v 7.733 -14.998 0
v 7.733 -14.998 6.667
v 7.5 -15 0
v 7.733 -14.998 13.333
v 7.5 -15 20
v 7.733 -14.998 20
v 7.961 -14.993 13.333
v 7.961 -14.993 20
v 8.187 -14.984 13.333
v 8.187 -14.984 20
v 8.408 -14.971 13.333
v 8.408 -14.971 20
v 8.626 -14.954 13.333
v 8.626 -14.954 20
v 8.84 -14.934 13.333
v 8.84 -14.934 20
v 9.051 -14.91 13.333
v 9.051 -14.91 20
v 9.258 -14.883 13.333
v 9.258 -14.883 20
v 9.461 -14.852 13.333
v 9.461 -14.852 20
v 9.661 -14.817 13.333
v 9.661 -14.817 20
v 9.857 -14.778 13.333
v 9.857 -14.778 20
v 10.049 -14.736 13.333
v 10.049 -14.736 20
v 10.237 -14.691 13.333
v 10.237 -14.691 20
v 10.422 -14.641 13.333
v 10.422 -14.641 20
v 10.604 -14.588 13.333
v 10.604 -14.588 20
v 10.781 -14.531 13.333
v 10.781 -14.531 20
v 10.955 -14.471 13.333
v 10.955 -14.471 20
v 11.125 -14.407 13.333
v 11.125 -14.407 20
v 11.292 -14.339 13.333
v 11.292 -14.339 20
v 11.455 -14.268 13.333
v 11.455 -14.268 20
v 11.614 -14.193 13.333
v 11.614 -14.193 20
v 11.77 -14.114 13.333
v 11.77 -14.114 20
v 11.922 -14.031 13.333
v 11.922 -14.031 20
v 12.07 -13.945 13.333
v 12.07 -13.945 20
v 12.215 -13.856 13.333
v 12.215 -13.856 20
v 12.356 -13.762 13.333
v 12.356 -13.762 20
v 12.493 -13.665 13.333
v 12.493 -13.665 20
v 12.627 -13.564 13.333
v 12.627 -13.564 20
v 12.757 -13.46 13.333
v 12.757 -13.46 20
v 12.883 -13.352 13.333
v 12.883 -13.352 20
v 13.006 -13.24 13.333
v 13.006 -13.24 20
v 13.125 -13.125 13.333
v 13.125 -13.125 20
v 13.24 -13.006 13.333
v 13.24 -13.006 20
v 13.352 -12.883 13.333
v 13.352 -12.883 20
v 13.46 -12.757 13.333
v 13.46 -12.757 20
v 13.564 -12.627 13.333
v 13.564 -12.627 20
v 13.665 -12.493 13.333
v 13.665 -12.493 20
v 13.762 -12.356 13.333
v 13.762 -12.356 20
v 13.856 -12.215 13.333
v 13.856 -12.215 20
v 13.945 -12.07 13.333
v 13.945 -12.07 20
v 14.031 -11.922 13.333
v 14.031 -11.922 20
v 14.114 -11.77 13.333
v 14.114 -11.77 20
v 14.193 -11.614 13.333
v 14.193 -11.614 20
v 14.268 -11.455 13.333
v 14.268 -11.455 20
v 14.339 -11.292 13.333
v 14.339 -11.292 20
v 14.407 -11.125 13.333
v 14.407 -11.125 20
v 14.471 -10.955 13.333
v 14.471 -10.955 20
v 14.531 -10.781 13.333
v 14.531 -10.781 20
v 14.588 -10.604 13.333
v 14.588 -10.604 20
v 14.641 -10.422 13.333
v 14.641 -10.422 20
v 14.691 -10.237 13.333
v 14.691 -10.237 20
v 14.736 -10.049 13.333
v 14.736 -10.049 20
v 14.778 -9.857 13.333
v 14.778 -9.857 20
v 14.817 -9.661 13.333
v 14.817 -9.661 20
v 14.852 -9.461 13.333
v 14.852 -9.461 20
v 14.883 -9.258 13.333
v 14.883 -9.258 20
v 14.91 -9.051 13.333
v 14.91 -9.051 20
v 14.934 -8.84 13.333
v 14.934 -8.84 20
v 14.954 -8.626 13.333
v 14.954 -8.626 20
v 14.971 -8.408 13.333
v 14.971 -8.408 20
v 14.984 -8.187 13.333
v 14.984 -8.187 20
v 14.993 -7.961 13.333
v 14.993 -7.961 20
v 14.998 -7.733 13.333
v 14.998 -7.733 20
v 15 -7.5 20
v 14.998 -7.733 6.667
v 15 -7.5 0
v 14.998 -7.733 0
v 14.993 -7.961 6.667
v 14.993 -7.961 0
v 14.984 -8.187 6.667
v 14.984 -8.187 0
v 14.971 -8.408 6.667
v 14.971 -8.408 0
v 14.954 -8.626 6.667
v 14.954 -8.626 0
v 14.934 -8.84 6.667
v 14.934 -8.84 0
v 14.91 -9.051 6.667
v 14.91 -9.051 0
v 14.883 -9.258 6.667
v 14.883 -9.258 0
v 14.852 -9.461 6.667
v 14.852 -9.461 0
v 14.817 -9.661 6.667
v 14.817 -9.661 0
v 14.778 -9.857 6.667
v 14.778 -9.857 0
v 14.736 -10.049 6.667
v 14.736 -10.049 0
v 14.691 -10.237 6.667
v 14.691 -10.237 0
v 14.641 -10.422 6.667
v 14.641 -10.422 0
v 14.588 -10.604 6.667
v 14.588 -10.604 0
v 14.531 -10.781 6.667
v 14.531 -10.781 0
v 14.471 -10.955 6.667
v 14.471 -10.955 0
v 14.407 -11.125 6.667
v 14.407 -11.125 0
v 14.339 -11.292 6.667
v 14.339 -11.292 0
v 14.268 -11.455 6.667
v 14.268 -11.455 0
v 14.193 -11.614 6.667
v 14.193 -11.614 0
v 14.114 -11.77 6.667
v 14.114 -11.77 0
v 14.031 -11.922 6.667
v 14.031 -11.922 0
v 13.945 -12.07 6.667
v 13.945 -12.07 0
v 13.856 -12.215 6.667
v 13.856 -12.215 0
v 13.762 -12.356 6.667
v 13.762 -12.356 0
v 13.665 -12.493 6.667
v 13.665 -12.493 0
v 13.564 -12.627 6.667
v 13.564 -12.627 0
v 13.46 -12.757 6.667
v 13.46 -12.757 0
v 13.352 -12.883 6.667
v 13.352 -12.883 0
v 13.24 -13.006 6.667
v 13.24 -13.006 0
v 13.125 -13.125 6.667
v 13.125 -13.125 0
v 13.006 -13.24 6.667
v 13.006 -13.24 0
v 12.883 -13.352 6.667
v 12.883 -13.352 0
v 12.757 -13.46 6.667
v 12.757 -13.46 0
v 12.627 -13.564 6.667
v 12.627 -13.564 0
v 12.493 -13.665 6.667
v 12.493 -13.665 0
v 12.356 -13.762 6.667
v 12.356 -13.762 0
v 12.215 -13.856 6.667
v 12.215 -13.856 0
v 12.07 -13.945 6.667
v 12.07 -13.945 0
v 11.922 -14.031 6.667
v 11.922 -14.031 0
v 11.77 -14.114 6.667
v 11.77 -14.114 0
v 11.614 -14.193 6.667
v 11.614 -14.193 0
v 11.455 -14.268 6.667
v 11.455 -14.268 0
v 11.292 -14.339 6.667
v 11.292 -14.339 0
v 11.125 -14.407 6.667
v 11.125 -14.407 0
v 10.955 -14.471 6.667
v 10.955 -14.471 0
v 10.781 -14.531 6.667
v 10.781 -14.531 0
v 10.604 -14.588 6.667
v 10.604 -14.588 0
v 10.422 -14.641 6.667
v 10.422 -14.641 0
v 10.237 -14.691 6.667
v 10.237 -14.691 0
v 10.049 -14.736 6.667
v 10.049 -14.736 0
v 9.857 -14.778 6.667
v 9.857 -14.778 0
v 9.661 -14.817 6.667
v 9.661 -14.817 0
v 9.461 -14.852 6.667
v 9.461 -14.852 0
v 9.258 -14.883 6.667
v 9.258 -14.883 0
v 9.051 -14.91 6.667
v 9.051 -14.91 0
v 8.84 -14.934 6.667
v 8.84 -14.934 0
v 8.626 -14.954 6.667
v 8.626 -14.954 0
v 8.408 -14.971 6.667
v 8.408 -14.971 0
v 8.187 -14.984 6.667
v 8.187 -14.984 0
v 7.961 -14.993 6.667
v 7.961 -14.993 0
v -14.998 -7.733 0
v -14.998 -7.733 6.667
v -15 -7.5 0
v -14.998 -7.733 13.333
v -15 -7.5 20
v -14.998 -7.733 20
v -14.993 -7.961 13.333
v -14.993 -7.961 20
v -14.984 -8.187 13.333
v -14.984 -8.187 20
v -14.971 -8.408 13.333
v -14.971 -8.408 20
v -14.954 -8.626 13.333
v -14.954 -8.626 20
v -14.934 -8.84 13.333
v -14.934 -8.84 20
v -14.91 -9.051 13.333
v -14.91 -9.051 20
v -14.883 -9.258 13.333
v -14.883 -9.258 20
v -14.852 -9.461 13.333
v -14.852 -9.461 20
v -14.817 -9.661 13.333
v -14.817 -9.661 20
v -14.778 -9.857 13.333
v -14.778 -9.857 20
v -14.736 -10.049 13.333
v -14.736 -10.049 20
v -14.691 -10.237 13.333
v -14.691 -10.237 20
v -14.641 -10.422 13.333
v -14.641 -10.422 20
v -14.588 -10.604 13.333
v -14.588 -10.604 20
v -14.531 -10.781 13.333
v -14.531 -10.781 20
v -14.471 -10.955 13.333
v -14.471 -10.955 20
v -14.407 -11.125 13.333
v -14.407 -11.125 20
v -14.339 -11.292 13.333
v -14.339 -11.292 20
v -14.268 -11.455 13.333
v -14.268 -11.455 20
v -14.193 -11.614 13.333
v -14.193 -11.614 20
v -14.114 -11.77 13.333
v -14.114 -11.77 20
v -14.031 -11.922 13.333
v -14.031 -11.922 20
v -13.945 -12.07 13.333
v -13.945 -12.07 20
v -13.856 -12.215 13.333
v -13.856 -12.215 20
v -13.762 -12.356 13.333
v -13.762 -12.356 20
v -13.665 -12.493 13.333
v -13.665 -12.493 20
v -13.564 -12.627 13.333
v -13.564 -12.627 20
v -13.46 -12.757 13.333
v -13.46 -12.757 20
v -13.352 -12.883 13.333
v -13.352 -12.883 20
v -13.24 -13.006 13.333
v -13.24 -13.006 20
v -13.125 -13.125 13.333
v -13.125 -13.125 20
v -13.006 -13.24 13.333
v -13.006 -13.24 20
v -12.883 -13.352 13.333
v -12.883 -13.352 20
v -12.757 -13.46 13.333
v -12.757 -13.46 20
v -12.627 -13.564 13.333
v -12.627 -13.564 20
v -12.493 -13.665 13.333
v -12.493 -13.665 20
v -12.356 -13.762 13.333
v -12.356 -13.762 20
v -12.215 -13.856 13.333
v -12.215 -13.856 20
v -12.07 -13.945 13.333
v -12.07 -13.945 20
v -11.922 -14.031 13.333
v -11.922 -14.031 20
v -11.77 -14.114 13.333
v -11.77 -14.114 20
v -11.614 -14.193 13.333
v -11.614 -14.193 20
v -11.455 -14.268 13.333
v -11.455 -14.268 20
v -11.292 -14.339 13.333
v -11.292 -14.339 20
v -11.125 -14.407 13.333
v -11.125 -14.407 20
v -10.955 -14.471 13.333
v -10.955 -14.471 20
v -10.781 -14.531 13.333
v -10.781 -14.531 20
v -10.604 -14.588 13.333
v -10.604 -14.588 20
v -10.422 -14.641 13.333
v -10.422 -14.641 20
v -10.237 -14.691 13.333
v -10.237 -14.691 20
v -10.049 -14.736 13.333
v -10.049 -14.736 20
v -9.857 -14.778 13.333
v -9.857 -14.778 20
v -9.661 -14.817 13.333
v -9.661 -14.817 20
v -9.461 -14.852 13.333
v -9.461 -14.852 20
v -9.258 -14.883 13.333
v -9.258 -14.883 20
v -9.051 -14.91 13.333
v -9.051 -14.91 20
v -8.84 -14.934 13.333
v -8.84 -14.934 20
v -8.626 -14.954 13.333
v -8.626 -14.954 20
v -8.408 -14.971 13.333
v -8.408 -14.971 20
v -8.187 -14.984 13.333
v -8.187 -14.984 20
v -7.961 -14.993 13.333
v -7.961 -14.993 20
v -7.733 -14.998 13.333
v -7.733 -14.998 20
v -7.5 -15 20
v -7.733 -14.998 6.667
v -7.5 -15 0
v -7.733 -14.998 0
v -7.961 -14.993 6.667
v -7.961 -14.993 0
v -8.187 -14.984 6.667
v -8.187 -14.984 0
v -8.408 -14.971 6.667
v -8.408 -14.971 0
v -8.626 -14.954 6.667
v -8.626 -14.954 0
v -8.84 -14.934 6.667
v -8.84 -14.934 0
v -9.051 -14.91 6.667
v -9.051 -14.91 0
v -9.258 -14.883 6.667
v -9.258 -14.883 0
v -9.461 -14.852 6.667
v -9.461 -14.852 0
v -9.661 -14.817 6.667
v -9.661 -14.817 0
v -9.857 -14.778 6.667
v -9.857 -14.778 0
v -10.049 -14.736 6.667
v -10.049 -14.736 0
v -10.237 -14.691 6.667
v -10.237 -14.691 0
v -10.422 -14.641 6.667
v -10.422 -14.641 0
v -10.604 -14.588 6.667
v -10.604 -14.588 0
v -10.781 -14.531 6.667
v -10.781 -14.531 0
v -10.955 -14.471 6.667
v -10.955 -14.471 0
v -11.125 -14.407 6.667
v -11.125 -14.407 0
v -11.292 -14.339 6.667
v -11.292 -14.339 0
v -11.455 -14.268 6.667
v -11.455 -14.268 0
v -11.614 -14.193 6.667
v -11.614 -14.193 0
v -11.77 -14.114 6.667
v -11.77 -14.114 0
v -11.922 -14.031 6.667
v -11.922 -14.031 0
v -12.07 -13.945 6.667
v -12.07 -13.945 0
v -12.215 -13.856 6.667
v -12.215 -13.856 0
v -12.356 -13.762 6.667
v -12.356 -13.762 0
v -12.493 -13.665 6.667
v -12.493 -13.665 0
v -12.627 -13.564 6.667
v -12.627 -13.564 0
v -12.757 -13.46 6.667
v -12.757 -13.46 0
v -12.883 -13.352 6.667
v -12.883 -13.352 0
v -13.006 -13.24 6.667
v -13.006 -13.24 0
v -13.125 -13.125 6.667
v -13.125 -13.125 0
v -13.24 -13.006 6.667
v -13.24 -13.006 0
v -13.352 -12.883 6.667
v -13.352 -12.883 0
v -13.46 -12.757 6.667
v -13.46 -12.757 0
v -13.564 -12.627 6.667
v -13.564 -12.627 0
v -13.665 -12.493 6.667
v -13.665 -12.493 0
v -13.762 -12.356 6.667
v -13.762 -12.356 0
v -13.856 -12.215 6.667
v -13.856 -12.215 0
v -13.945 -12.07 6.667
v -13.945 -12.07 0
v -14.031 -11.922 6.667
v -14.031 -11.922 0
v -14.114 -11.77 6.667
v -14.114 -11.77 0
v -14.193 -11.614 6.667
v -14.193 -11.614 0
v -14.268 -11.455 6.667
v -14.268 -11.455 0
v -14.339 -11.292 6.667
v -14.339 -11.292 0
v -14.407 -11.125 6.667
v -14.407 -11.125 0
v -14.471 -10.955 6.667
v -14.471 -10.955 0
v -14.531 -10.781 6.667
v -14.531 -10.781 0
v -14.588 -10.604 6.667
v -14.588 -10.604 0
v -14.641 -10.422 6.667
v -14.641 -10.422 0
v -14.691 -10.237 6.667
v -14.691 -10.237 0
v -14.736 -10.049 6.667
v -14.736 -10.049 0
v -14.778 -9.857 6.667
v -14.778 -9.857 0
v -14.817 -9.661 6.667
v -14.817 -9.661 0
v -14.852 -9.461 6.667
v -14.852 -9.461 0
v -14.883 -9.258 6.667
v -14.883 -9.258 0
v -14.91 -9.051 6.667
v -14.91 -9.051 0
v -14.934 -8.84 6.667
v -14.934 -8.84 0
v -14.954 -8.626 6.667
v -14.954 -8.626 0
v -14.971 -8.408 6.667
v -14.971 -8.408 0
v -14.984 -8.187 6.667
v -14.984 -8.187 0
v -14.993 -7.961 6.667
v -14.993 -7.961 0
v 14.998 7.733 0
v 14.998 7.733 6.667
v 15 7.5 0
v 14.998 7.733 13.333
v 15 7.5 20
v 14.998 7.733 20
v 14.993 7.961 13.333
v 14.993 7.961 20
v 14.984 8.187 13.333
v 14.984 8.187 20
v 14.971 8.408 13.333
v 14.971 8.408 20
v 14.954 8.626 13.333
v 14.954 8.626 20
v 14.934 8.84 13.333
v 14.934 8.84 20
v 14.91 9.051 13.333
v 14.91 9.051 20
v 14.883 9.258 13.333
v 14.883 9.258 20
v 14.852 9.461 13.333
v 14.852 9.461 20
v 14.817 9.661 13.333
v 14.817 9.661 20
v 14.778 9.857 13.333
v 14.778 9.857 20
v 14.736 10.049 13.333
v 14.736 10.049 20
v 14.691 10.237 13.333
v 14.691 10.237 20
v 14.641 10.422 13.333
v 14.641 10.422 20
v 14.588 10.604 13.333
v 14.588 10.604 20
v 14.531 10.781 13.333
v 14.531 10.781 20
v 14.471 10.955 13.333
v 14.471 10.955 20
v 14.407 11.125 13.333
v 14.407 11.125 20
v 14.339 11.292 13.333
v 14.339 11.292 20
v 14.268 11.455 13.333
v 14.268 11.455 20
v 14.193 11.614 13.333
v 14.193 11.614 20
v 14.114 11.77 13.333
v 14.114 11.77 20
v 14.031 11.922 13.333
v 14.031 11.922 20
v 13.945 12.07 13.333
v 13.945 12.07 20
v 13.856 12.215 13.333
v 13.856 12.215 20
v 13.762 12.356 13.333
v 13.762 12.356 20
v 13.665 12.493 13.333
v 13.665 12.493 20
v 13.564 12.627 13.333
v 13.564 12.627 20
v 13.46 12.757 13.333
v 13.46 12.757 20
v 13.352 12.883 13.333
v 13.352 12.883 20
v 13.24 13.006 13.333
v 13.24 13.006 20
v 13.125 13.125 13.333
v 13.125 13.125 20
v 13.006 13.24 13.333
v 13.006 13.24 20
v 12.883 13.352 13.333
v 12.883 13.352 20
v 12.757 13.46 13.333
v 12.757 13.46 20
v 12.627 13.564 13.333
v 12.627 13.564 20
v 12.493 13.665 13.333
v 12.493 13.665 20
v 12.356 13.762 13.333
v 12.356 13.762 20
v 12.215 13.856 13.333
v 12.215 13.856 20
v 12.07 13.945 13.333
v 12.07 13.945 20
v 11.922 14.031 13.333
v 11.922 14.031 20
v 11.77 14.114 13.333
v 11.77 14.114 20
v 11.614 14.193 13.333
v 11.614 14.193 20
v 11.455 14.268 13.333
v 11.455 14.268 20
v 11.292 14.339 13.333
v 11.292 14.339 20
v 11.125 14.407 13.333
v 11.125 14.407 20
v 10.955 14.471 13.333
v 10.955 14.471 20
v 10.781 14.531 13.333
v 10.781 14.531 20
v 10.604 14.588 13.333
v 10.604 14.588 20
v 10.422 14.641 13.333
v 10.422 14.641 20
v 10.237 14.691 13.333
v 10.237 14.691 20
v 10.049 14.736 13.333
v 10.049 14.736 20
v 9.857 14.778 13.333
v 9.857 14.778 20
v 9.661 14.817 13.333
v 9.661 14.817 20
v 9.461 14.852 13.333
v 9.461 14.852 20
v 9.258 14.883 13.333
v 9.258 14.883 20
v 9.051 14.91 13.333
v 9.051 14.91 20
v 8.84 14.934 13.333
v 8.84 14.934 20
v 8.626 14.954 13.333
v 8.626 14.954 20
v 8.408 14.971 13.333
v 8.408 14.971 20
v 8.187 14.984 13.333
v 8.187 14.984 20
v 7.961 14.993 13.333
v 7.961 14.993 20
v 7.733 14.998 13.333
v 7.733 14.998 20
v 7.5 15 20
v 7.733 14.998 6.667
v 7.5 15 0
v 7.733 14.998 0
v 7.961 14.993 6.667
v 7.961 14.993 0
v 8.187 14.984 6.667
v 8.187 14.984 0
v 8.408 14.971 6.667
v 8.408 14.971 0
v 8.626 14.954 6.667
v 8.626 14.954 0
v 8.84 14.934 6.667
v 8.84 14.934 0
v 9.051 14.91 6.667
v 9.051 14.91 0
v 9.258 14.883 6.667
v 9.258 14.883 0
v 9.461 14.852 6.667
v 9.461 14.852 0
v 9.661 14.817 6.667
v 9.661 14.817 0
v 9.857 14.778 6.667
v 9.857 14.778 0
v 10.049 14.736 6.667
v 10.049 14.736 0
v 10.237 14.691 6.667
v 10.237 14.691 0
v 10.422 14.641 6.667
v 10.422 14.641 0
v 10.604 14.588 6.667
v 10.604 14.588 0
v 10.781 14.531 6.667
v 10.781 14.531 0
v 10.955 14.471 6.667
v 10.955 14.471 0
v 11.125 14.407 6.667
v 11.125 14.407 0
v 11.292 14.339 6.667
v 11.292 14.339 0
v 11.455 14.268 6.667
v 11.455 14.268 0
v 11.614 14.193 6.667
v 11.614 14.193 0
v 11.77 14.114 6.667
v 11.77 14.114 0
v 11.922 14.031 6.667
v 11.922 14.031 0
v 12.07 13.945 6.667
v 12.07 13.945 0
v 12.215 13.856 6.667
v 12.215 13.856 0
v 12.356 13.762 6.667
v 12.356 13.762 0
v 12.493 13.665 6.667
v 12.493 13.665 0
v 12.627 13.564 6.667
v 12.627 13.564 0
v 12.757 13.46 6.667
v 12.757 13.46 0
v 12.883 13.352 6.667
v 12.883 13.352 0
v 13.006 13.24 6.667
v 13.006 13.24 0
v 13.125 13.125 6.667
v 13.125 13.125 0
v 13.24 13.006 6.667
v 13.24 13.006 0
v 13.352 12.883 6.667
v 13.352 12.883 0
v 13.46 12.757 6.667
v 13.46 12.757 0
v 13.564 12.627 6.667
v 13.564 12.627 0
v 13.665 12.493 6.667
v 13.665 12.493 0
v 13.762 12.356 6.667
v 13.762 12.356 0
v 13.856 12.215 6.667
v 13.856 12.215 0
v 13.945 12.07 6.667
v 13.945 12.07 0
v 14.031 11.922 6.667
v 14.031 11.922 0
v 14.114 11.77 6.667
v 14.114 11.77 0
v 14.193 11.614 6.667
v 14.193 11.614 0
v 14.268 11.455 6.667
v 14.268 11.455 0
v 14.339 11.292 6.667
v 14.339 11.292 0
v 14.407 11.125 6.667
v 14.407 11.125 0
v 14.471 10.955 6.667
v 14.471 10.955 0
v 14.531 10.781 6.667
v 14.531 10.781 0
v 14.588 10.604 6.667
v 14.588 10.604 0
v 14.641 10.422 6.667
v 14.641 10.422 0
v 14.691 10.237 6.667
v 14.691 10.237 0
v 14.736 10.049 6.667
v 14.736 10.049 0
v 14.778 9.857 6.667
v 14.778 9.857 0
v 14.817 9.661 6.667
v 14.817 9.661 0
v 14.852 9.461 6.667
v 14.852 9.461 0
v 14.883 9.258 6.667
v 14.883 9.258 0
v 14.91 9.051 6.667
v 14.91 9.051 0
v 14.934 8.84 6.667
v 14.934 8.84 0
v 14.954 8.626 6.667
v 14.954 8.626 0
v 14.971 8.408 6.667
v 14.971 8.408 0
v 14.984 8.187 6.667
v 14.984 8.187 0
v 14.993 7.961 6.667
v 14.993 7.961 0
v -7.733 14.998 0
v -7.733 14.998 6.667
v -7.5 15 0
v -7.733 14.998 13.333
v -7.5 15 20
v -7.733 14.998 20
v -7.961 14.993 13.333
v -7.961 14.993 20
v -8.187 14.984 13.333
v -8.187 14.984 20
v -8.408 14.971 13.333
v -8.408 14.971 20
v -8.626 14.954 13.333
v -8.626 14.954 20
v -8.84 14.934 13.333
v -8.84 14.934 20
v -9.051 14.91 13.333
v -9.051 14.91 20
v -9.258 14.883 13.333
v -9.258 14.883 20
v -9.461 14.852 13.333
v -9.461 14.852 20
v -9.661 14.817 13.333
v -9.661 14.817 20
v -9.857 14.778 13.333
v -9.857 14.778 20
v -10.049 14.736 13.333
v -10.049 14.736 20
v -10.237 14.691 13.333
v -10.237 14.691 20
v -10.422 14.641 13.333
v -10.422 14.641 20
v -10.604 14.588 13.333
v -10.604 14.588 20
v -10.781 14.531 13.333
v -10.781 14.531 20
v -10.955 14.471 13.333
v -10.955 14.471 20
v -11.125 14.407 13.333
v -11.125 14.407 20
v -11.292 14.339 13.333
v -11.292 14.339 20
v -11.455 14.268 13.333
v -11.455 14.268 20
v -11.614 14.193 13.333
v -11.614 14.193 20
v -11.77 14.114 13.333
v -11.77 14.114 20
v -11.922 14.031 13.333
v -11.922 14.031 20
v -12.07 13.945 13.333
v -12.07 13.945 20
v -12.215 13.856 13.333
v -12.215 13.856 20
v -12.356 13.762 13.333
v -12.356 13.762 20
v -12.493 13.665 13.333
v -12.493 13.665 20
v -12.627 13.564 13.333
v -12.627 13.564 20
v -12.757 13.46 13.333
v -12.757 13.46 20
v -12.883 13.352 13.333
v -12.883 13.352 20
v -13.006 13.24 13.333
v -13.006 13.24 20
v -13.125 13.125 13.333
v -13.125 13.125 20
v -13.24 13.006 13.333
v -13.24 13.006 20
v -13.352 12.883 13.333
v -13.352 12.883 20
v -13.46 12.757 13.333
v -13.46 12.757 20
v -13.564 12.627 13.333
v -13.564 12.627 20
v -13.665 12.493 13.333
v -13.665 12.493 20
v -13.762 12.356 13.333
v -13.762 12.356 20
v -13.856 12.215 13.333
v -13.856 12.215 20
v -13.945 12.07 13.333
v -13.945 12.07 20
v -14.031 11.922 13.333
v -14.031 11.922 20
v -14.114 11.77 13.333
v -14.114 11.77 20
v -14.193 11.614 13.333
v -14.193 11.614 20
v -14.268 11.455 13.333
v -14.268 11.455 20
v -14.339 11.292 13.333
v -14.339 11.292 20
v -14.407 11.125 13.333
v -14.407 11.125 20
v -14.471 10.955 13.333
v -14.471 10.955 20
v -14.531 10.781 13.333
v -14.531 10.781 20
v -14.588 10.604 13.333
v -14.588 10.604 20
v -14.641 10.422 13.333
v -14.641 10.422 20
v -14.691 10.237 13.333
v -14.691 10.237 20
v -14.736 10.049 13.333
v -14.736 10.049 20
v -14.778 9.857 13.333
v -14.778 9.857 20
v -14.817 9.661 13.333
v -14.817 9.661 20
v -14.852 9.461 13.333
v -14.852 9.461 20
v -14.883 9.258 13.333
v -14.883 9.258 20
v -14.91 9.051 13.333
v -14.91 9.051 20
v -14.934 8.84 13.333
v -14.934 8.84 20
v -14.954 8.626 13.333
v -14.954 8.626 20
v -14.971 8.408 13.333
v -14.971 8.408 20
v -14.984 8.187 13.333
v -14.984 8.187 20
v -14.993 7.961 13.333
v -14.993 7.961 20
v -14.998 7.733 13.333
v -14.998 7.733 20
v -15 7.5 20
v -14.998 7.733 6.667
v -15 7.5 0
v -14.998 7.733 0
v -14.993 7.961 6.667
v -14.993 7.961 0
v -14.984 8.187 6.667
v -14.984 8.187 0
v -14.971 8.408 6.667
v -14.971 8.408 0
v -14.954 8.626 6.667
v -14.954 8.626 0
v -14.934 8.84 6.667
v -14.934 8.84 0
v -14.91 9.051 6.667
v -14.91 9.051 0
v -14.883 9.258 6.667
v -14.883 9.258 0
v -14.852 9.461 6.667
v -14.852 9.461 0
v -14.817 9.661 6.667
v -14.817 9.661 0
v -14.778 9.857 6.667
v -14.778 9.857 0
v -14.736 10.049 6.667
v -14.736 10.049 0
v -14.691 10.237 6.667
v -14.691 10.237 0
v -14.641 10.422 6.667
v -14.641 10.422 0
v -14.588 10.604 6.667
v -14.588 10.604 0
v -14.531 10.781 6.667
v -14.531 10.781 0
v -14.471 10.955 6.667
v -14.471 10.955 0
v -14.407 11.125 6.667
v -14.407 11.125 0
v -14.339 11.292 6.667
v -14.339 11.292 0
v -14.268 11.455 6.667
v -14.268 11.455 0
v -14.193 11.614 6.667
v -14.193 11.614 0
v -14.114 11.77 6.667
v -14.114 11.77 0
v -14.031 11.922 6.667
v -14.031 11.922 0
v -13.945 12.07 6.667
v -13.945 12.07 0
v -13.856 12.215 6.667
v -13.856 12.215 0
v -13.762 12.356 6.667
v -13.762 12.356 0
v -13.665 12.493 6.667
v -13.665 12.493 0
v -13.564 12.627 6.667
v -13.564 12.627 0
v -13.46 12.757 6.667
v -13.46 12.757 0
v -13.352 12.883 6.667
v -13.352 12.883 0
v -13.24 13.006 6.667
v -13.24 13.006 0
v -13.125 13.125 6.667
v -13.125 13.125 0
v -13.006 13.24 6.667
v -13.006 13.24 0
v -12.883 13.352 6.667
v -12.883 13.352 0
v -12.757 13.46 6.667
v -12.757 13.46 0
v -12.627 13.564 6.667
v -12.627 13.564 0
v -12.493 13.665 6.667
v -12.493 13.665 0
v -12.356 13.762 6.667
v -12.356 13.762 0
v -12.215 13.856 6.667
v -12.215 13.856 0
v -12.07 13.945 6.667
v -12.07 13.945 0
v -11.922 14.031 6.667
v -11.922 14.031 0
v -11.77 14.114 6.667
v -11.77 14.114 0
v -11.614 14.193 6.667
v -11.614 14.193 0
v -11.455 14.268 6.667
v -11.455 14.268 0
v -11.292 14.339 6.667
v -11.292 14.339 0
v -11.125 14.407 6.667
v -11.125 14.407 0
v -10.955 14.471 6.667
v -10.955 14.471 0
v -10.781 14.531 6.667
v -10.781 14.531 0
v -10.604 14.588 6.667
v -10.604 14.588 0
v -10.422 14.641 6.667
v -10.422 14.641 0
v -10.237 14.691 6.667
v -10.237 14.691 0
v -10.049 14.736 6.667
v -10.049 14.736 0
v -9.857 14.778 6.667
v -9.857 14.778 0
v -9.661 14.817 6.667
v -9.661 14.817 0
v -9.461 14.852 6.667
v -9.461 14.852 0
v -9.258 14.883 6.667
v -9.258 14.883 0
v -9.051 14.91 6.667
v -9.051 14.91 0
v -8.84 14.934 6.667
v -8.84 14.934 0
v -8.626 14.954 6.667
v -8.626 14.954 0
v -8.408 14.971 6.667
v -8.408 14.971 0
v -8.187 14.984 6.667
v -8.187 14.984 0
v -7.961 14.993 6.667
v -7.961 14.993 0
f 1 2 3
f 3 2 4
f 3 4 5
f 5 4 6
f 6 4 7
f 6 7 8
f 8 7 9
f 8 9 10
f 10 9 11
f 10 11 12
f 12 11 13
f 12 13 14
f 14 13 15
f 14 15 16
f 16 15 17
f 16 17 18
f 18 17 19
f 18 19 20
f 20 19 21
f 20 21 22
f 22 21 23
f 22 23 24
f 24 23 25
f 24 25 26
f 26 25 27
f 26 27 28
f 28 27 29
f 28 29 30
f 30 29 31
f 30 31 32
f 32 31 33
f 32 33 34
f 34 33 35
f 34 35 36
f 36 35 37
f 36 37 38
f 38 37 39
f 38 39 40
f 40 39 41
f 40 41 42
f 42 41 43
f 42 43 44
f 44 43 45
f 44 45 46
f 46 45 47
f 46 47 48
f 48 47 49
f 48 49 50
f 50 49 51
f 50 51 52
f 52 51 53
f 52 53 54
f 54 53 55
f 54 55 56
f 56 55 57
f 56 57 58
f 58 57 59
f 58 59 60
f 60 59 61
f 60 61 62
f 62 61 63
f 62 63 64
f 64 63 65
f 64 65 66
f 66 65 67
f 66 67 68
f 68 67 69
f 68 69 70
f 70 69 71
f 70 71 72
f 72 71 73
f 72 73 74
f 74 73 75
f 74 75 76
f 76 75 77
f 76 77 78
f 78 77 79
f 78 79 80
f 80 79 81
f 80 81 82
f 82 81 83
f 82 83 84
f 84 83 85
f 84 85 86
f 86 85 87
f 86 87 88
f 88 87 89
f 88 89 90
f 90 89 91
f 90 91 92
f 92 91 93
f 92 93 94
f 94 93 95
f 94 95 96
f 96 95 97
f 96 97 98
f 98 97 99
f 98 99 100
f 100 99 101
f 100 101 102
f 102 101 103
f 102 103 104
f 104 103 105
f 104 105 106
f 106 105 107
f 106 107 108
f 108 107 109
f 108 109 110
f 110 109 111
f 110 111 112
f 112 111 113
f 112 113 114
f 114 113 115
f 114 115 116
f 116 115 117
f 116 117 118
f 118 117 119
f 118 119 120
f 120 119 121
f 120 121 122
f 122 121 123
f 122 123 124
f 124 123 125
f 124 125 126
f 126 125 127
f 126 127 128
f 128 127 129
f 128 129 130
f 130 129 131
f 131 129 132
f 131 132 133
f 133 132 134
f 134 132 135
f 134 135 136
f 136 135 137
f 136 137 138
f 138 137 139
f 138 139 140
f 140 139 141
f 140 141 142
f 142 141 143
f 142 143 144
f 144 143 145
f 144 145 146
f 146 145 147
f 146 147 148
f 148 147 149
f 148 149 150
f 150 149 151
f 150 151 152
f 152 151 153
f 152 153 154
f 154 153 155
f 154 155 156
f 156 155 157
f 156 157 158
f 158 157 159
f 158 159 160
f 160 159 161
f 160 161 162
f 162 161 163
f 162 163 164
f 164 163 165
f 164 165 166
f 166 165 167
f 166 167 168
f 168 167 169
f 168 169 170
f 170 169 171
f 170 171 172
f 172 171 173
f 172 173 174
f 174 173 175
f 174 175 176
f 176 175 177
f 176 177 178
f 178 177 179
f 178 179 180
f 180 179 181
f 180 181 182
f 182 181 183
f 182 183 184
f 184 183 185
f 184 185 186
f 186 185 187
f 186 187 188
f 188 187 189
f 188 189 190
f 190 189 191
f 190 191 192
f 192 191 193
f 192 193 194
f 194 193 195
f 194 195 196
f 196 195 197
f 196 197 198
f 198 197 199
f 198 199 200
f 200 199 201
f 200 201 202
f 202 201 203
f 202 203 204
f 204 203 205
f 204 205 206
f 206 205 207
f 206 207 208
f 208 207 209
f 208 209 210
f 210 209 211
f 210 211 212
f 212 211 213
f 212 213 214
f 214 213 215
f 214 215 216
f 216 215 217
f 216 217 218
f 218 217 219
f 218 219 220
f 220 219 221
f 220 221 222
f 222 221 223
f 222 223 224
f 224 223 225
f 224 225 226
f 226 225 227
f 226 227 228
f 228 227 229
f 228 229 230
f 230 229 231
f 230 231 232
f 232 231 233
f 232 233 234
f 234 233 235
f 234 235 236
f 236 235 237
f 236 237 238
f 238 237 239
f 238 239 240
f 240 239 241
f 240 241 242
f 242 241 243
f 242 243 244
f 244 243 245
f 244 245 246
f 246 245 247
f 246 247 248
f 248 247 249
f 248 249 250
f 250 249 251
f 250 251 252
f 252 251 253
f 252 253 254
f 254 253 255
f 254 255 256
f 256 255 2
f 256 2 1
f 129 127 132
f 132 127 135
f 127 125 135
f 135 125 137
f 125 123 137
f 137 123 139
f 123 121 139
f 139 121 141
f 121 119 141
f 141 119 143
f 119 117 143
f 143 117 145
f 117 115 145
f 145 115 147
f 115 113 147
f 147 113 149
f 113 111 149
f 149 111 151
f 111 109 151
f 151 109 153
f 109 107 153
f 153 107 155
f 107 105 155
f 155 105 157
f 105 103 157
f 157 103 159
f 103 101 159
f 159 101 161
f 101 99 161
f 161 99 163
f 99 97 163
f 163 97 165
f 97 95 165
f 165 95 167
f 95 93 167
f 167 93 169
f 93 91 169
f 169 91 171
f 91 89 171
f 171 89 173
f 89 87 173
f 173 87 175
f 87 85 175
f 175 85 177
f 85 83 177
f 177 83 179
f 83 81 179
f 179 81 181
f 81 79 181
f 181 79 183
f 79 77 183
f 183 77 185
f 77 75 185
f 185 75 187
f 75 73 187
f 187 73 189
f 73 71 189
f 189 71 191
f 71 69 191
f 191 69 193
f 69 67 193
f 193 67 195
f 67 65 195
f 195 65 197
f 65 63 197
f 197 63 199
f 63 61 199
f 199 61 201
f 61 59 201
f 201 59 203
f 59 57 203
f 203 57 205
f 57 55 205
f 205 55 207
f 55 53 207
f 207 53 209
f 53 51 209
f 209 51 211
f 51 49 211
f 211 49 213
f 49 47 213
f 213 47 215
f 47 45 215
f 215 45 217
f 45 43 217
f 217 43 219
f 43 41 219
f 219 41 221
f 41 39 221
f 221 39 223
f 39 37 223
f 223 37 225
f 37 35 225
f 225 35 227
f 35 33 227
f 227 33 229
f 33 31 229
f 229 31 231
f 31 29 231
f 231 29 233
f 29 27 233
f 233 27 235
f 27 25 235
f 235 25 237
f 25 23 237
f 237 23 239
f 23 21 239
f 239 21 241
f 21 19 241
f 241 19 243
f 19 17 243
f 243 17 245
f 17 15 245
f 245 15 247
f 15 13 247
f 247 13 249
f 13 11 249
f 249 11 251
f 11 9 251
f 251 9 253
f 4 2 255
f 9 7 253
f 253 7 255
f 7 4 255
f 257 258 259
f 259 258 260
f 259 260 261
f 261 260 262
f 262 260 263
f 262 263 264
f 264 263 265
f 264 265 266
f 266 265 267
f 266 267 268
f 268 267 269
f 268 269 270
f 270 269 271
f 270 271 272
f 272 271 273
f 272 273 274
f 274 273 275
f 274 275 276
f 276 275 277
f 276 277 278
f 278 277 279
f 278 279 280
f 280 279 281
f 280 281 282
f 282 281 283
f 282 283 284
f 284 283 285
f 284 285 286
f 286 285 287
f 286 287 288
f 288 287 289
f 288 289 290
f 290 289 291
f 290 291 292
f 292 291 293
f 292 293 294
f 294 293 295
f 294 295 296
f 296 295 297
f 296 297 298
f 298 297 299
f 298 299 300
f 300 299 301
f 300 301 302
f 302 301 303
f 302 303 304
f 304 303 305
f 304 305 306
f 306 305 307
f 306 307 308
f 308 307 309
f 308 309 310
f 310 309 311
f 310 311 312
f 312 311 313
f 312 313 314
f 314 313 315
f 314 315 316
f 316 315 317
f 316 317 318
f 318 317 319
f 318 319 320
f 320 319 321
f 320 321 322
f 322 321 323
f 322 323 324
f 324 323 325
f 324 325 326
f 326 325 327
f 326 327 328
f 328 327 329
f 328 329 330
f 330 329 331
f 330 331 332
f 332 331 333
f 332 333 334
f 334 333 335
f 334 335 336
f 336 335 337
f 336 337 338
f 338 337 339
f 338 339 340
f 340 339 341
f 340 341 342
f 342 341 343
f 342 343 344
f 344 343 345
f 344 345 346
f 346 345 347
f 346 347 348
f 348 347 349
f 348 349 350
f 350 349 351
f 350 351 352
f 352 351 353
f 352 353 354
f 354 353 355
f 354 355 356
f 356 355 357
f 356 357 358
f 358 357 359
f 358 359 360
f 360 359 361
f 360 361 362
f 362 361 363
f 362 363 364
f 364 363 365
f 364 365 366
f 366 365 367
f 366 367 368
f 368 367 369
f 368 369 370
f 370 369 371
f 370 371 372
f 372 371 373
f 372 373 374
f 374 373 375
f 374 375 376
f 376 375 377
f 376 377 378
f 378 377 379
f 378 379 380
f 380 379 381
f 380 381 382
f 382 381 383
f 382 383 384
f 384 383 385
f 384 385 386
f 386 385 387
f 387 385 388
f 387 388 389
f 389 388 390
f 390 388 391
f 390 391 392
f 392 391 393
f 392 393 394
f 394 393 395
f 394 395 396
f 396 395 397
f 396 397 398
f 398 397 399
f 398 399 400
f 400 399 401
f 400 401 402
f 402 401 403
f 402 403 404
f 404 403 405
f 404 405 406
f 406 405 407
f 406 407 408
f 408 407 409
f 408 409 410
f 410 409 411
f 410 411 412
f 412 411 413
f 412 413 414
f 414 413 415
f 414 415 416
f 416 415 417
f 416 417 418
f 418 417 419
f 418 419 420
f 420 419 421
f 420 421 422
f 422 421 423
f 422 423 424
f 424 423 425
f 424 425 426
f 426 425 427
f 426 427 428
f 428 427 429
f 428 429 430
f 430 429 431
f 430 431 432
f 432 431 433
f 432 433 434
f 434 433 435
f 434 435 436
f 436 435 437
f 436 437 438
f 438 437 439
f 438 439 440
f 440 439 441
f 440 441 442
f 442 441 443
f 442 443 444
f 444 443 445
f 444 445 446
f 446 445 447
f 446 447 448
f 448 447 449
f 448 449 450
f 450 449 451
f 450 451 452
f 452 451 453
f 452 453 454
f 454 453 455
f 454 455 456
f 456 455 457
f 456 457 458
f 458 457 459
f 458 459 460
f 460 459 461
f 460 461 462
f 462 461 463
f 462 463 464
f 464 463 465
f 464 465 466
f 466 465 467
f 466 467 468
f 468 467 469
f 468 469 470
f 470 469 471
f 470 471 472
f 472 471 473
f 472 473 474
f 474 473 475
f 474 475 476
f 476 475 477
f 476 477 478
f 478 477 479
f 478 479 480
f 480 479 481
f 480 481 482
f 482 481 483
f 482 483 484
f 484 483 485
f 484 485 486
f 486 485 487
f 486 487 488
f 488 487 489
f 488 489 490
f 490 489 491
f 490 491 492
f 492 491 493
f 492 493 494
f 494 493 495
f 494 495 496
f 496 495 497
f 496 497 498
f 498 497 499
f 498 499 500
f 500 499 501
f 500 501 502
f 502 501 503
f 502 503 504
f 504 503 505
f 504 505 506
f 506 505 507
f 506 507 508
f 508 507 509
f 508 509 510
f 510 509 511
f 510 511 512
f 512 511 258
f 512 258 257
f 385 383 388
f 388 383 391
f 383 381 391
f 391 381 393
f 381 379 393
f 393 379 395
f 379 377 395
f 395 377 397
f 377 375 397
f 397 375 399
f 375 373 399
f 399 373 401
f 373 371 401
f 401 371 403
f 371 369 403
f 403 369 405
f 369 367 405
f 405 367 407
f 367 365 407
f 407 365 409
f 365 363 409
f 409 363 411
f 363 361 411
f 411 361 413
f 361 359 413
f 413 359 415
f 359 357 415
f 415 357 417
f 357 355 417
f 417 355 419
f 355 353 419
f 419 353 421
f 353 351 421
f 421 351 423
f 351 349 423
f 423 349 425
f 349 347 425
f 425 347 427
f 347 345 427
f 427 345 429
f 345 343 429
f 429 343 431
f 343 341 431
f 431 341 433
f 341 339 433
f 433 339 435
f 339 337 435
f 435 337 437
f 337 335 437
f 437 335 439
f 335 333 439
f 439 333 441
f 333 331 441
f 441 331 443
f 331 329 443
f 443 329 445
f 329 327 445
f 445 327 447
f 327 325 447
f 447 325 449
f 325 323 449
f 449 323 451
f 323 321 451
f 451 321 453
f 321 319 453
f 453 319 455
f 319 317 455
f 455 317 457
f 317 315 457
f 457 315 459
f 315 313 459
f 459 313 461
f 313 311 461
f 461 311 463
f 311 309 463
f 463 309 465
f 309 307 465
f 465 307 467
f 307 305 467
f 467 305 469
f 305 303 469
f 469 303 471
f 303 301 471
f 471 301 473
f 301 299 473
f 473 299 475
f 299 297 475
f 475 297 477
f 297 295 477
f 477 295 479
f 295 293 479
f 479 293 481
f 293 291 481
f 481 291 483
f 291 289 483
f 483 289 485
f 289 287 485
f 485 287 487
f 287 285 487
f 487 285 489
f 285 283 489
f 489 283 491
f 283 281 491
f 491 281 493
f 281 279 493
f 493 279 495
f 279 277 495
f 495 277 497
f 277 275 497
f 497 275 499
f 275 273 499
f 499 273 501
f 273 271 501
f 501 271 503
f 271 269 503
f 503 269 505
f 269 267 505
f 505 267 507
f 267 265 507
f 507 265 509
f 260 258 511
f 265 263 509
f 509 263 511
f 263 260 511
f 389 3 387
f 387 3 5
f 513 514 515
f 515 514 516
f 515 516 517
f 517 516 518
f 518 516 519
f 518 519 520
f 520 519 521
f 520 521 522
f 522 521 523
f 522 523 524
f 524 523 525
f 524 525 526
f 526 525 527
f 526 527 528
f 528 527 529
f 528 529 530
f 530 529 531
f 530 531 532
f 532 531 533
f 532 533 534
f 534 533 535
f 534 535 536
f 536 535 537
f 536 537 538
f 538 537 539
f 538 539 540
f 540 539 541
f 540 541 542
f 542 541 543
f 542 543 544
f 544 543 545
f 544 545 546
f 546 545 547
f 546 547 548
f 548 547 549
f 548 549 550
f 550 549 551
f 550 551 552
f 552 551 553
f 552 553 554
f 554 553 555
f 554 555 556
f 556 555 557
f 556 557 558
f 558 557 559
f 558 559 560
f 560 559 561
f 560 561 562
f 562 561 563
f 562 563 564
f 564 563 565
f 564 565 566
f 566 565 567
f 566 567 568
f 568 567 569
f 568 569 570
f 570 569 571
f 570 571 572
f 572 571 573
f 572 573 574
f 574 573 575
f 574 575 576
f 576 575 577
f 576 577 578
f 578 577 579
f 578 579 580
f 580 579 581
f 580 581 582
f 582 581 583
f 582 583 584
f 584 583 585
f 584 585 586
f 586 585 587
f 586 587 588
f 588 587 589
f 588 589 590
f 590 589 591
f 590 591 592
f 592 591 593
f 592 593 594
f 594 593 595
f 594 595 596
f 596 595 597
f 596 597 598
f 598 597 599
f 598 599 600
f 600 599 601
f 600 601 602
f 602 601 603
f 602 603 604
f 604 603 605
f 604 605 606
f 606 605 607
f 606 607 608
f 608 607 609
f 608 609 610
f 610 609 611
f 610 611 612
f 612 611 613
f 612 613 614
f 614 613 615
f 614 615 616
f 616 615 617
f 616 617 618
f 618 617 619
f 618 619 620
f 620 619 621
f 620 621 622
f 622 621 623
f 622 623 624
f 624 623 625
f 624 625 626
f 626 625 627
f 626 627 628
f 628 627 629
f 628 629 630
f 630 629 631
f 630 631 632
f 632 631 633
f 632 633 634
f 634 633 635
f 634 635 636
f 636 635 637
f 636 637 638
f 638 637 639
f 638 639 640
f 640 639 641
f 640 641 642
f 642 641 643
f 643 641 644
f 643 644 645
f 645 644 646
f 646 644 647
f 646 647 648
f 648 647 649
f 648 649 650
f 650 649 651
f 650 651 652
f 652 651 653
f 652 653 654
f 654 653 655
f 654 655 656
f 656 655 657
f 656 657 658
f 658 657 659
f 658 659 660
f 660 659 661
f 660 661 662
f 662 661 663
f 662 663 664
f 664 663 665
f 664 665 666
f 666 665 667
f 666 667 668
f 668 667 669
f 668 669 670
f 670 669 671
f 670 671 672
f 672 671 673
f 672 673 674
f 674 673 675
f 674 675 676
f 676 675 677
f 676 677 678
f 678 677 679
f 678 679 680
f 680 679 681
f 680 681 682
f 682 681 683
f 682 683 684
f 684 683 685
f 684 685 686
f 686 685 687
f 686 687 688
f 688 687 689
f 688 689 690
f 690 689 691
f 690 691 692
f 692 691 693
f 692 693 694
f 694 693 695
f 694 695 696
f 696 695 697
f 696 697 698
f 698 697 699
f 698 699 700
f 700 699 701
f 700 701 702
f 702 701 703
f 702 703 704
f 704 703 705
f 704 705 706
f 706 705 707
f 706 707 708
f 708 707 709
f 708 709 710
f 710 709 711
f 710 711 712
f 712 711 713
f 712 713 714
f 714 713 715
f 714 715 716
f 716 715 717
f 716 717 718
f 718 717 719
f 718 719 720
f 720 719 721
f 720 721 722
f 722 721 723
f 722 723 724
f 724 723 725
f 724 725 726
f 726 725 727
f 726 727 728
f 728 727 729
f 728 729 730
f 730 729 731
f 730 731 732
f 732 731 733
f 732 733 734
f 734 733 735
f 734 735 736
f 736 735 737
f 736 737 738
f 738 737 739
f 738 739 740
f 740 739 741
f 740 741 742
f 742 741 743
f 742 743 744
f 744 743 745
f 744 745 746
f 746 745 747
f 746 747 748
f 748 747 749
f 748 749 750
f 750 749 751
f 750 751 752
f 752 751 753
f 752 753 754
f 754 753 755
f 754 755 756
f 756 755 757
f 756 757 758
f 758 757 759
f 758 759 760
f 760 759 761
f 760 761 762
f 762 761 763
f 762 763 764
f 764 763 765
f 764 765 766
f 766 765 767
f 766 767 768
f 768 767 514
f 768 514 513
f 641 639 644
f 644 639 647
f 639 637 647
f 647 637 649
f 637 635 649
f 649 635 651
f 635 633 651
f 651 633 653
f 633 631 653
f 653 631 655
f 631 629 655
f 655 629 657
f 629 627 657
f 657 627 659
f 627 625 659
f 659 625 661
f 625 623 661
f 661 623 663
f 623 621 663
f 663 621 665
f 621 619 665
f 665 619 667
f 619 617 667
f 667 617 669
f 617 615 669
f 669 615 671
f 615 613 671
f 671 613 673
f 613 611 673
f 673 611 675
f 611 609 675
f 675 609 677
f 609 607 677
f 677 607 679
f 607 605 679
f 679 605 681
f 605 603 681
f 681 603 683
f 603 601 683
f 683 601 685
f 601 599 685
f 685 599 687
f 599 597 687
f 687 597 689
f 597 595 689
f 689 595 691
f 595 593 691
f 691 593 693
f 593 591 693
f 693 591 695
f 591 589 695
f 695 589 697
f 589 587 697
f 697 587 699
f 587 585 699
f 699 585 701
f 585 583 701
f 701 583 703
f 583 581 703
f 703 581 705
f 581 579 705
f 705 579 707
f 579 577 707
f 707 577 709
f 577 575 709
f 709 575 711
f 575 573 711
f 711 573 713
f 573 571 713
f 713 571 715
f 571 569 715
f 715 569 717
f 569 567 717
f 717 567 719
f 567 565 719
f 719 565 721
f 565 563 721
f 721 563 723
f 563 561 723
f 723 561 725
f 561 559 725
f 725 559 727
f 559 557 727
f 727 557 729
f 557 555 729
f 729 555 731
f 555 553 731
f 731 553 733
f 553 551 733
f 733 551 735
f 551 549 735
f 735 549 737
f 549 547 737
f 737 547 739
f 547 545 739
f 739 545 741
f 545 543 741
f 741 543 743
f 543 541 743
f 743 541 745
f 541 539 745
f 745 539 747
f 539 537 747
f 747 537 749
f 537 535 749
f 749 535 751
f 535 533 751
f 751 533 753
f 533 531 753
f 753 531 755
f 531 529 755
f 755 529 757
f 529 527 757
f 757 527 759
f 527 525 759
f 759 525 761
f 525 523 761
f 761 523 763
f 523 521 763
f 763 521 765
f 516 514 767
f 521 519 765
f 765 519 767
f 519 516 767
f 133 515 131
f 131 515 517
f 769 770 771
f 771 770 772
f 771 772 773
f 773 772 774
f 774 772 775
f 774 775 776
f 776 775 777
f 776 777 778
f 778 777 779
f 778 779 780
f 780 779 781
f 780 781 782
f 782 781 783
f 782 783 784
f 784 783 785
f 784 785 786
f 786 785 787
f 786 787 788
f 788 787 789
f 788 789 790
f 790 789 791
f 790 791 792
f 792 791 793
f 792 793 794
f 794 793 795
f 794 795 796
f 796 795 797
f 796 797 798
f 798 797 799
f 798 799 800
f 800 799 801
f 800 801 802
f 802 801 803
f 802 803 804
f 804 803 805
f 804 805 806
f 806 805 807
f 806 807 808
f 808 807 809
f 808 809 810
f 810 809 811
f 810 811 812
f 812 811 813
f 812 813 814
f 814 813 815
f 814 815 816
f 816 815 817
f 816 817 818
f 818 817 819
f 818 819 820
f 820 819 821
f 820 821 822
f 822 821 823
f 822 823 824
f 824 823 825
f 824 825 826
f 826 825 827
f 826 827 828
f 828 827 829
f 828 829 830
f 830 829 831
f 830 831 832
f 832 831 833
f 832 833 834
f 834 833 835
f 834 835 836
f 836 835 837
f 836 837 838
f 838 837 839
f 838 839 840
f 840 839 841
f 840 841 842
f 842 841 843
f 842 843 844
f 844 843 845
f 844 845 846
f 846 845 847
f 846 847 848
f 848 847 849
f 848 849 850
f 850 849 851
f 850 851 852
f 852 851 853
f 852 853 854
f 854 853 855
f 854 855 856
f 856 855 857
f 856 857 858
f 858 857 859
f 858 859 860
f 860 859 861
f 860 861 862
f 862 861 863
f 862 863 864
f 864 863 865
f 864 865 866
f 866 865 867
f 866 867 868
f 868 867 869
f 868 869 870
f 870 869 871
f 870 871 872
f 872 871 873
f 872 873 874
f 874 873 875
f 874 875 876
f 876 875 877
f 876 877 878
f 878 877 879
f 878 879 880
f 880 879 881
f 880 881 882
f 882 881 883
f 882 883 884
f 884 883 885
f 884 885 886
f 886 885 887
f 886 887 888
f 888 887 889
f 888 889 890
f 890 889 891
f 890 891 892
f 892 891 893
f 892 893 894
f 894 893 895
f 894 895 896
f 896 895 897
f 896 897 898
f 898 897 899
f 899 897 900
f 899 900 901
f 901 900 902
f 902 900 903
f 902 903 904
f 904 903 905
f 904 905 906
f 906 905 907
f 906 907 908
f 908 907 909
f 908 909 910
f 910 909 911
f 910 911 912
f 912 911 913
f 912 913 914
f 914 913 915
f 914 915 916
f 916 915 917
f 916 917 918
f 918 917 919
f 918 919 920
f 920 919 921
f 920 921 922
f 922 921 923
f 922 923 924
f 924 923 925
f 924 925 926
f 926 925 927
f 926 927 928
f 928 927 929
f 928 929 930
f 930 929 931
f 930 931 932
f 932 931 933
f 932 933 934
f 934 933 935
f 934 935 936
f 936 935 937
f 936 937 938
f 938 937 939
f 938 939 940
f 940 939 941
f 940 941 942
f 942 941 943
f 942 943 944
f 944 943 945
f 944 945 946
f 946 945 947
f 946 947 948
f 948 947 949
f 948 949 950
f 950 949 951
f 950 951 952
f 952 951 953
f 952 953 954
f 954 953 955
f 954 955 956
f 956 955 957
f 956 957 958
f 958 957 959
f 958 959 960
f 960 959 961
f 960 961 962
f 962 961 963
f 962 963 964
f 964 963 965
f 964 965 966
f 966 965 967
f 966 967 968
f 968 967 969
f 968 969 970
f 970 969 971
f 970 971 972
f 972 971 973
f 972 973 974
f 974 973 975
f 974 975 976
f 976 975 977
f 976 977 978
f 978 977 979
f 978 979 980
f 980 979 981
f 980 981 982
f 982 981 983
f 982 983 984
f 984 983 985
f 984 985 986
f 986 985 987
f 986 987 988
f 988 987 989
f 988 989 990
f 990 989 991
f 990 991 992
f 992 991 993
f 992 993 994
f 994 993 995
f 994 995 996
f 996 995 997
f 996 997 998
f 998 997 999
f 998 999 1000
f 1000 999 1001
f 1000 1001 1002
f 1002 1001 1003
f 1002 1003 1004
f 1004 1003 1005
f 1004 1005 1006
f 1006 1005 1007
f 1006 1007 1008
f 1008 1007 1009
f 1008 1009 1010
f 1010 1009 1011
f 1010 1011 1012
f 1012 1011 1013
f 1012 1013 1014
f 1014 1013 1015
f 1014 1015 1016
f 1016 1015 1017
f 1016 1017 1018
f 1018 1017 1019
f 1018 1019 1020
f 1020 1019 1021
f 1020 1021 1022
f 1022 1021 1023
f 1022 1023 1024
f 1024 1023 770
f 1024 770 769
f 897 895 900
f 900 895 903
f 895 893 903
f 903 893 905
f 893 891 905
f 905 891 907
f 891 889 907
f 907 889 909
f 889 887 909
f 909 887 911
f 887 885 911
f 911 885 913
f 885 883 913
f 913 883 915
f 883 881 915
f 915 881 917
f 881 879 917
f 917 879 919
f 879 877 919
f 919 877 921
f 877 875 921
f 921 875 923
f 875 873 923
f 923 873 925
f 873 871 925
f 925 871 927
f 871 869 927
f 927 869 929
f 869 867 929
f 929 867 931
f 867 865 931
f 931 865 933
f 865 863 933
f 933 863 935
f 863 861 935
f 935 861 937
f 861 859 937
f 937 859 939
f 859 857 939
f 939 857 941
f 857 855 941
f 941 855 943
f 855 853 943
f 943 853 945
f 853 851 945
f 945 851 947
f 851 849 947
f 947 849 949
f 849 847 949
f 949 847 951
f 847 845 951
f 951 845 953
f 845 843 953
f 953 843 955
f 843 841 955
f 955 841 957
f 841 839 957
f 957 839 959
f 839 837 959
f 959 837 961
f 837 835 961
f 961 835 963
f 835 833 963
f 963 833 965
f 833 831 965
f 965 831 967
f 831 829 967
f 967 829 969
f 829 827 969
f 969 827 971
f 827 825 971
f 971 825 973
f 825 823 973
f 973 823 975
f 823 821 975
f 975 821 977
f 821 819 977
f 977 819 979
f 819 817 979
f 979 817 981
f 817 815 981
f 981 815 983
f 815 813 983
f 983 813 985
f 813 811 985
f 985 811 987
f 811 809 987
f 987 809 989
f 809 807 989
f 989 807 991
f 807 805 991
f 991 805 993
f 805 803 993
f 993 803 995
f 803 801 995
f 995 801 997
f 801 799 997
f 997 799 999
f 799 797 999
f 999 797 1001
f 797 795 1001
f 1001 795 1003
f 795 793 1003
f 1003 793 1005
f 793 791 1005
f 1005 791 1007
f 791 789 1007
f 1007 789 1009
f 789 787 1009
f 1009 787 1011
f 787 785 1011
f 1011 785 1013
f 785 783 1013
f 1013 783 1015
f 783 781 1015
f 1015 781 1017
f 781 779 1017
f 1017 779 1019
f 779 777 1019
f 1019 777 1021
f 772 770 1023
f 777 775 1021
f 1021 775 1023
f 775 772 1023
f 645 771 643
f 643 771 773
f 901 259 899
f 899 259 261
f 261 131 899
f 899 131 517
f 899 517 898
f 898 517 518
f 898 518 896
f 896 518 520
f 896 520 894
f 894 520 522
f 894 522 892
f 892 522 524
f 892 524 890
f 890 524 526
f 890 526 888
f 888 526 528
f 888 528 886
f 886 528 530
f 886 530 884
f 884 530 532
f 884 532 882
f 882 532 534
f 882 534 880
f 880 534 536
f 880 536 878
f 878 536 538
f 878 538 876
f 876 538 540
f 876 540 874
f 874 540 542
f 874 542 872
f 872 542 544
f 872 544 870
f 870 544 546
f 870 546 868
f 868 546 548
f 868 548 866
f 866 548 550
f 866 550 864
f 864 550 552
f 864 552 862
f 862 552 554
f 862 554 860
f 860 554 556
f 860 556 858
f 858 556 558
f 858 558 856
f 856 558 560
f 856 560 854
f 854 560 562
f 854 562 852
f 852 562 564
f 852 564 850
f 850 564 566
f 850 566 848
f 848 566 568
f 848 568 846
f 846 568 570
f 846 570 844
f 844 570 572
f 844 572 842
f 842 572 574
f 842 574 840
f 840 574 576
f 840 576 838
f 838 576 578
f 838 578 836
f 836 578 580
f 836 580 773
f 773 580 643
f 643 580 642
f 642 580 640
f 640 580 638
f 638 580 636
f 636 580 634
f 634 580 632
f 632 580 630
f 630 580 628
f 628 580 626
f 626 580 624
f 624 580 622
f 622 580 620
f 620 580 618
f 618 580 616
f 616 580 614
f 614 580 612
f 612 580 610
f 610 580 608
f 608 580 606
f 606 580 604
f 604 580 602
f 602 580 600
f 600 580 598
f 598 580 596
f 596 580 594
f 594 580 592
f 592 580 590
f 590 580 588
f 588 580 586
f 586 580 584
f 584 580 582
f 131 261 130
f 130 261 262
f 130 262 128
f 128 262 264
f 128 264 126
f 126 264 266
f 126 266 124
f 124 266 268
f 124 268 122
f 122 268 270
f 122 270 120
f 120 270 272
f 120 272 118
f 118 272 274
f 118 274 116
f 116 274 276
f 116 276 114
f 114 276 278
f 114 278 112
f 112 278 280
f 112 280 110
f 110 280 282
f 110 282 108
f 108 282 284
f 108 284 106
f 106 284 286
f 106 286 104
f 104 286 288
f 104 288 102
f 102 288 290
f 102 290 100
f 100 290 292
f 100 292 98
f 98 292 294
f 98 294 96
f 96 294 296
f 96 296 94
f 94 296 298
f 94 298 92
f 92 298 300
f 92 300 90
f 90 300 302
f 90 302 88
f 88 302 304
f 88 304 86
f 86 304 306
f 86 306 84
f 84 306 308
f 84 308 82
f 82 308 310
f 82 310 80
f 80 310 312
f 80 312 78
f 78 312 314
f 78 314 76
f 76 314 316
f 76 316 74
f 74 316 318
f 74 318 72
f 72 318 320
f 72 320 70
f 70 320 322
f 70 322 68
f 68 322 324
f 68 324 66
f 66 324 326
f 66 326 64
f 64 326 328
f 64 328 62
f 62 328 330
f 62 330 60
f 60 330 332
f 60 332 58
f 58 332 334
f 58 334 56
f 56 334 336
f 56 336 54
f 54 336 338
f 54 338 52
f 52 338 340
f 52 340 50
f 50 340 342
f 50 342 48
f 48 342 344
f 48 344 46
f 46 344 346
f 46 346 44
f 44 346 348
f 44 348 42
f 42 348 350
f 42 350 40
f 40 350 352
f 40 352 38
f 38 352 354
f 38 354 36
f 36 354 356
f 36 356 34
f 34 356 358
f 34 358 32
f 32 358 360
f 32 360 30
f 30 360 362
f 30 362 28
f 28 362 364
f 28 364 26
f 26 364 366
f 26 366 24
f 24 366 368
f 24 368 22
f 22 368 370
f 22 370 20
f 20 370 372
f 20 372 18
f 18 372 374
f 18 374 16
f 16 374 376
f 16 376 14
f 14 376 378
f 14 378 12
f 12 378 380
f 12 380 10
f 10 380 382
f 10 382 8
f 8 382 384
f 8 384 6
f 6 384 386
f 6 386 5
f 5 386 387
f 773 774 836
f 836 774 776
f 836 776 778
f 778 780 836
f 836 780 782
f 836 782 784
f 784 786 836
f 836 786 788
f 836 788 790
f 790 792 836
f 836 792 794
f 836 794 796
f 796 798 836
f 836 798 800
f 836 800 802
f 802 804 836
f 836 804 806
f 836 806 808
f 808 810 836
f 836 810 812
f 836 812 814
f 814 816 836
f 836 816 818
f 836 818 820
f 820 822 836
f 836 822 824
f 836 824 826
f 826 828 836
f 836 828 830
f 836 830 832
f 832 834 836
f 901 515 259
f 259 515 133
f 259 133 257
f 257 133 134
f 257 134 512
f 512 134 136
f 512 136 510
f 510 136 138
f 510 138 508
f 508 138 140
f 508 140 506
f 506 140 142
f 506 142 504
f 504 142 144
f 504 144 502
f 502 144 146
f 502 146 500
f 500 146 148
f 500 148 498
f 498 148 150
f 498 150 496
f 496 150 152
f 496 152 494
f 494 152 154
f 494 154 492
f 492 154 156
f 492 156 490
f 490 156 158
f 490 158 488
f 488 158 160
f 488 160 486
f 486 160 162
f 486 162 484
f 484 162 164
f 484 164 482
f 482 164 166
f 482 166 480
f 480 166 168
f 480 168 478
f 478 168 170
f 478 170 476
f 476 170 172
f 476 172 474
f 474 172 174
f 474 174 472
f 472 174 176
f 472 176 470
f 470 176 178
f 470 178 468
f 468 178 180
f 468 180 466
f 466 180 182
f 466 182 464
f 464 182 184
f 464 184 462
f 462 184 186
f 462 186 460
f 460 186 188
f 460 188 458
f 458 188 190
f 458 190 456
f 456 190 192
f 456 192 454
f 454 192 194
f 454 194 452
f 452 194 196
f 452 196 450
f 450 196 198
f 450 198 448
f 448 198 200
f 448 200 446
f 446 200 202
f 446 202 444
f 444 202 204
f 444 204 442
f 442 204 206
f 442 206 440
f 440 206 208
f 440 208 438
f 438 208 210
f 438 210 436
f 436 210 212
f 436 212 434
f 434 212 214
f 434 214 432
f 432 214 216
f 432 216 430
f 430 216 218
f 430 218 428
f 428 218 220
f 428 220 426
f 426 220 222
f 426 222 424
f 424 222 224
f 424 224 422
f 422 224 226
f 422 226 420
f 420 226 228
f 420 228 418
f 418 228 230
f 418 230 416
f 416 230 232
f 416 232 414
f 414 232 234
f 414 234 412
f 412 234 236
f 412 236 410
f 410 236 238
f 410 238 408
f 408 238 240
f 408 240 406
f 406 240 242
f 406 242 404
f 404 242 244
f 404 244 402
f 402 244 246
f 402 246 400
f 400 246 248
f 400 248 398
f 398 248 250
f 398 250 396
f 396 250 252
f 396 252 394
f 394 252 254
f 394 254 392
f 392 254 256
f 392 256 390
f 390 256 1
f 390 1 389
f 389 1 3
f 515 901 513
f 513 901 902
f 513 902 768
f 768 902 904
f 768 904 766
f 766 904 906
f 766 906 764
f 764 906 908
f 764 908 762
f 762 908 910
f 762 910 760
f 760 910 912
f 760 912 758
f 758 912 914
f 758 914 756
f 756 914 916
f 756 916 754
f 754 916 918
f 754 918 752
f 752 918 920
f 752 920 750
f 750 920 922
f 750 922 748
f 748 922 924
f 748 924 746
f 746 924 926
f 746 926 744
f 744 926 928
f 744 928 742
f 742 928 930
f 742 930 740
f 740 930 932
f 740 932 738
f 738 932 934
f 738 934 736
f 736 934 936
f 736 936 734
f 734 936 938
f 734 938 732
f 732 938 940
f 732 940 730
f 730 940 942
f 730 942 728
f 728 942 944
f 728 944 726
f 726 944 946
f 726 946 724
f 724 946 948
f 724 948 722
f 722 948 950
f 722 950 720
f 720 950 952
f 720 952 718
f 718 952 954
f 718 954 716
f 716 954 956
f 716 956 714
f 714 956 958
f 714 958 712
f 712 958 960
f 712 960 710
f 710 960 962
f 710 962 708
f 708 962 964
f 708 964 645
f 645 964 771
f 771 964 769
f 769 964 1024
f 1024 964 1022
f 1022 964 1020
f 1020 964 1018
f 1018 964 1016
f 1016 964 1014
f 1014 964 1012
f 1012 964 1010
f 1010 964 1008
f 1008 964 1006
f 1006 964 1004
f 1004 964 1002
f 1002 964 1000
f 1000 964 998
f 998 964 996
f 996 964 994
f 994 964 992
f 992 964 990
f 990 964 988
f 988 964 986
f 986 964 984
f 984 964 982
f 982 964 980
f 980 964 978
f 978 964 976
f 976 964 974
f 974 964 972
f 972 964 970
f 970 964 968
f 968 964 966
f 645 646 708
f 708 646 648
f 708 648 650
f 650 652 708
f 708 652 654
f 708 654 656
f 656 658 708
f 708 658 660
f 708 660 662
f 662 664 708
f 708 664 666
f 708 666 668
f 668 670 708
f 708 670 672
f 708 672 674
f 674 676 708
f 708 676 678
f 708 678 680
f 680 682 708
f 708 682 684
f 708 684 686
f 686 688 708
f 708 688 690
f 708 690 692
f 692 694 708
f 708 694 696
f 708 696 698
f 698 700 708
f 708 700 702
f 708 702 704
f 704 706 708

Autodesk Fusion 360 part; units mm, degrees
sketch "profile" plane through (0, 0, 0) normal (0, 0, 1) x (1, 0, 0)
  line L0 (15, -15) -> (-15, -15)
  line L1 (-15, -15) -> (-15, 15)
  line L2 (-15, 15) -> (15, 15)
  line L3 (15, 15) -> (15, -15)
  line L4 (15, -15) -> (-15, 15) construction
  line L5 (-15, -15) -> (15, 15) construction
  spline S0 degree 2 poles (-15, 7.5) (-15, 15) (-7.5, 15) knots 0 0 0 1.185854 1.185854 1.185854
  line L6 (-15, 0) -> (-15, 7.5)
  line L7 (-7.5, 15) -> (0, 15)
  line L8 (0, 15) -> (0, 0)
  line L9 (-15, 0) -> (0, 0)
  dimension "d1" = 30
  dimension "d4" = 7.5
extrude "Extrude1" add sketch "profile" along normal blind 20 contours L1 L2 S0 L6 L7 L8 L9
mirror "Mirror1" about plane through (0, 0, 0) normal (1, 0, 0) of bodies 1 merged
mirror "Mirror2" about plane through (0, 0, 0) normal (0, 1, 0) of bodies 1 merged
equation "d4 = d1 / 4"
